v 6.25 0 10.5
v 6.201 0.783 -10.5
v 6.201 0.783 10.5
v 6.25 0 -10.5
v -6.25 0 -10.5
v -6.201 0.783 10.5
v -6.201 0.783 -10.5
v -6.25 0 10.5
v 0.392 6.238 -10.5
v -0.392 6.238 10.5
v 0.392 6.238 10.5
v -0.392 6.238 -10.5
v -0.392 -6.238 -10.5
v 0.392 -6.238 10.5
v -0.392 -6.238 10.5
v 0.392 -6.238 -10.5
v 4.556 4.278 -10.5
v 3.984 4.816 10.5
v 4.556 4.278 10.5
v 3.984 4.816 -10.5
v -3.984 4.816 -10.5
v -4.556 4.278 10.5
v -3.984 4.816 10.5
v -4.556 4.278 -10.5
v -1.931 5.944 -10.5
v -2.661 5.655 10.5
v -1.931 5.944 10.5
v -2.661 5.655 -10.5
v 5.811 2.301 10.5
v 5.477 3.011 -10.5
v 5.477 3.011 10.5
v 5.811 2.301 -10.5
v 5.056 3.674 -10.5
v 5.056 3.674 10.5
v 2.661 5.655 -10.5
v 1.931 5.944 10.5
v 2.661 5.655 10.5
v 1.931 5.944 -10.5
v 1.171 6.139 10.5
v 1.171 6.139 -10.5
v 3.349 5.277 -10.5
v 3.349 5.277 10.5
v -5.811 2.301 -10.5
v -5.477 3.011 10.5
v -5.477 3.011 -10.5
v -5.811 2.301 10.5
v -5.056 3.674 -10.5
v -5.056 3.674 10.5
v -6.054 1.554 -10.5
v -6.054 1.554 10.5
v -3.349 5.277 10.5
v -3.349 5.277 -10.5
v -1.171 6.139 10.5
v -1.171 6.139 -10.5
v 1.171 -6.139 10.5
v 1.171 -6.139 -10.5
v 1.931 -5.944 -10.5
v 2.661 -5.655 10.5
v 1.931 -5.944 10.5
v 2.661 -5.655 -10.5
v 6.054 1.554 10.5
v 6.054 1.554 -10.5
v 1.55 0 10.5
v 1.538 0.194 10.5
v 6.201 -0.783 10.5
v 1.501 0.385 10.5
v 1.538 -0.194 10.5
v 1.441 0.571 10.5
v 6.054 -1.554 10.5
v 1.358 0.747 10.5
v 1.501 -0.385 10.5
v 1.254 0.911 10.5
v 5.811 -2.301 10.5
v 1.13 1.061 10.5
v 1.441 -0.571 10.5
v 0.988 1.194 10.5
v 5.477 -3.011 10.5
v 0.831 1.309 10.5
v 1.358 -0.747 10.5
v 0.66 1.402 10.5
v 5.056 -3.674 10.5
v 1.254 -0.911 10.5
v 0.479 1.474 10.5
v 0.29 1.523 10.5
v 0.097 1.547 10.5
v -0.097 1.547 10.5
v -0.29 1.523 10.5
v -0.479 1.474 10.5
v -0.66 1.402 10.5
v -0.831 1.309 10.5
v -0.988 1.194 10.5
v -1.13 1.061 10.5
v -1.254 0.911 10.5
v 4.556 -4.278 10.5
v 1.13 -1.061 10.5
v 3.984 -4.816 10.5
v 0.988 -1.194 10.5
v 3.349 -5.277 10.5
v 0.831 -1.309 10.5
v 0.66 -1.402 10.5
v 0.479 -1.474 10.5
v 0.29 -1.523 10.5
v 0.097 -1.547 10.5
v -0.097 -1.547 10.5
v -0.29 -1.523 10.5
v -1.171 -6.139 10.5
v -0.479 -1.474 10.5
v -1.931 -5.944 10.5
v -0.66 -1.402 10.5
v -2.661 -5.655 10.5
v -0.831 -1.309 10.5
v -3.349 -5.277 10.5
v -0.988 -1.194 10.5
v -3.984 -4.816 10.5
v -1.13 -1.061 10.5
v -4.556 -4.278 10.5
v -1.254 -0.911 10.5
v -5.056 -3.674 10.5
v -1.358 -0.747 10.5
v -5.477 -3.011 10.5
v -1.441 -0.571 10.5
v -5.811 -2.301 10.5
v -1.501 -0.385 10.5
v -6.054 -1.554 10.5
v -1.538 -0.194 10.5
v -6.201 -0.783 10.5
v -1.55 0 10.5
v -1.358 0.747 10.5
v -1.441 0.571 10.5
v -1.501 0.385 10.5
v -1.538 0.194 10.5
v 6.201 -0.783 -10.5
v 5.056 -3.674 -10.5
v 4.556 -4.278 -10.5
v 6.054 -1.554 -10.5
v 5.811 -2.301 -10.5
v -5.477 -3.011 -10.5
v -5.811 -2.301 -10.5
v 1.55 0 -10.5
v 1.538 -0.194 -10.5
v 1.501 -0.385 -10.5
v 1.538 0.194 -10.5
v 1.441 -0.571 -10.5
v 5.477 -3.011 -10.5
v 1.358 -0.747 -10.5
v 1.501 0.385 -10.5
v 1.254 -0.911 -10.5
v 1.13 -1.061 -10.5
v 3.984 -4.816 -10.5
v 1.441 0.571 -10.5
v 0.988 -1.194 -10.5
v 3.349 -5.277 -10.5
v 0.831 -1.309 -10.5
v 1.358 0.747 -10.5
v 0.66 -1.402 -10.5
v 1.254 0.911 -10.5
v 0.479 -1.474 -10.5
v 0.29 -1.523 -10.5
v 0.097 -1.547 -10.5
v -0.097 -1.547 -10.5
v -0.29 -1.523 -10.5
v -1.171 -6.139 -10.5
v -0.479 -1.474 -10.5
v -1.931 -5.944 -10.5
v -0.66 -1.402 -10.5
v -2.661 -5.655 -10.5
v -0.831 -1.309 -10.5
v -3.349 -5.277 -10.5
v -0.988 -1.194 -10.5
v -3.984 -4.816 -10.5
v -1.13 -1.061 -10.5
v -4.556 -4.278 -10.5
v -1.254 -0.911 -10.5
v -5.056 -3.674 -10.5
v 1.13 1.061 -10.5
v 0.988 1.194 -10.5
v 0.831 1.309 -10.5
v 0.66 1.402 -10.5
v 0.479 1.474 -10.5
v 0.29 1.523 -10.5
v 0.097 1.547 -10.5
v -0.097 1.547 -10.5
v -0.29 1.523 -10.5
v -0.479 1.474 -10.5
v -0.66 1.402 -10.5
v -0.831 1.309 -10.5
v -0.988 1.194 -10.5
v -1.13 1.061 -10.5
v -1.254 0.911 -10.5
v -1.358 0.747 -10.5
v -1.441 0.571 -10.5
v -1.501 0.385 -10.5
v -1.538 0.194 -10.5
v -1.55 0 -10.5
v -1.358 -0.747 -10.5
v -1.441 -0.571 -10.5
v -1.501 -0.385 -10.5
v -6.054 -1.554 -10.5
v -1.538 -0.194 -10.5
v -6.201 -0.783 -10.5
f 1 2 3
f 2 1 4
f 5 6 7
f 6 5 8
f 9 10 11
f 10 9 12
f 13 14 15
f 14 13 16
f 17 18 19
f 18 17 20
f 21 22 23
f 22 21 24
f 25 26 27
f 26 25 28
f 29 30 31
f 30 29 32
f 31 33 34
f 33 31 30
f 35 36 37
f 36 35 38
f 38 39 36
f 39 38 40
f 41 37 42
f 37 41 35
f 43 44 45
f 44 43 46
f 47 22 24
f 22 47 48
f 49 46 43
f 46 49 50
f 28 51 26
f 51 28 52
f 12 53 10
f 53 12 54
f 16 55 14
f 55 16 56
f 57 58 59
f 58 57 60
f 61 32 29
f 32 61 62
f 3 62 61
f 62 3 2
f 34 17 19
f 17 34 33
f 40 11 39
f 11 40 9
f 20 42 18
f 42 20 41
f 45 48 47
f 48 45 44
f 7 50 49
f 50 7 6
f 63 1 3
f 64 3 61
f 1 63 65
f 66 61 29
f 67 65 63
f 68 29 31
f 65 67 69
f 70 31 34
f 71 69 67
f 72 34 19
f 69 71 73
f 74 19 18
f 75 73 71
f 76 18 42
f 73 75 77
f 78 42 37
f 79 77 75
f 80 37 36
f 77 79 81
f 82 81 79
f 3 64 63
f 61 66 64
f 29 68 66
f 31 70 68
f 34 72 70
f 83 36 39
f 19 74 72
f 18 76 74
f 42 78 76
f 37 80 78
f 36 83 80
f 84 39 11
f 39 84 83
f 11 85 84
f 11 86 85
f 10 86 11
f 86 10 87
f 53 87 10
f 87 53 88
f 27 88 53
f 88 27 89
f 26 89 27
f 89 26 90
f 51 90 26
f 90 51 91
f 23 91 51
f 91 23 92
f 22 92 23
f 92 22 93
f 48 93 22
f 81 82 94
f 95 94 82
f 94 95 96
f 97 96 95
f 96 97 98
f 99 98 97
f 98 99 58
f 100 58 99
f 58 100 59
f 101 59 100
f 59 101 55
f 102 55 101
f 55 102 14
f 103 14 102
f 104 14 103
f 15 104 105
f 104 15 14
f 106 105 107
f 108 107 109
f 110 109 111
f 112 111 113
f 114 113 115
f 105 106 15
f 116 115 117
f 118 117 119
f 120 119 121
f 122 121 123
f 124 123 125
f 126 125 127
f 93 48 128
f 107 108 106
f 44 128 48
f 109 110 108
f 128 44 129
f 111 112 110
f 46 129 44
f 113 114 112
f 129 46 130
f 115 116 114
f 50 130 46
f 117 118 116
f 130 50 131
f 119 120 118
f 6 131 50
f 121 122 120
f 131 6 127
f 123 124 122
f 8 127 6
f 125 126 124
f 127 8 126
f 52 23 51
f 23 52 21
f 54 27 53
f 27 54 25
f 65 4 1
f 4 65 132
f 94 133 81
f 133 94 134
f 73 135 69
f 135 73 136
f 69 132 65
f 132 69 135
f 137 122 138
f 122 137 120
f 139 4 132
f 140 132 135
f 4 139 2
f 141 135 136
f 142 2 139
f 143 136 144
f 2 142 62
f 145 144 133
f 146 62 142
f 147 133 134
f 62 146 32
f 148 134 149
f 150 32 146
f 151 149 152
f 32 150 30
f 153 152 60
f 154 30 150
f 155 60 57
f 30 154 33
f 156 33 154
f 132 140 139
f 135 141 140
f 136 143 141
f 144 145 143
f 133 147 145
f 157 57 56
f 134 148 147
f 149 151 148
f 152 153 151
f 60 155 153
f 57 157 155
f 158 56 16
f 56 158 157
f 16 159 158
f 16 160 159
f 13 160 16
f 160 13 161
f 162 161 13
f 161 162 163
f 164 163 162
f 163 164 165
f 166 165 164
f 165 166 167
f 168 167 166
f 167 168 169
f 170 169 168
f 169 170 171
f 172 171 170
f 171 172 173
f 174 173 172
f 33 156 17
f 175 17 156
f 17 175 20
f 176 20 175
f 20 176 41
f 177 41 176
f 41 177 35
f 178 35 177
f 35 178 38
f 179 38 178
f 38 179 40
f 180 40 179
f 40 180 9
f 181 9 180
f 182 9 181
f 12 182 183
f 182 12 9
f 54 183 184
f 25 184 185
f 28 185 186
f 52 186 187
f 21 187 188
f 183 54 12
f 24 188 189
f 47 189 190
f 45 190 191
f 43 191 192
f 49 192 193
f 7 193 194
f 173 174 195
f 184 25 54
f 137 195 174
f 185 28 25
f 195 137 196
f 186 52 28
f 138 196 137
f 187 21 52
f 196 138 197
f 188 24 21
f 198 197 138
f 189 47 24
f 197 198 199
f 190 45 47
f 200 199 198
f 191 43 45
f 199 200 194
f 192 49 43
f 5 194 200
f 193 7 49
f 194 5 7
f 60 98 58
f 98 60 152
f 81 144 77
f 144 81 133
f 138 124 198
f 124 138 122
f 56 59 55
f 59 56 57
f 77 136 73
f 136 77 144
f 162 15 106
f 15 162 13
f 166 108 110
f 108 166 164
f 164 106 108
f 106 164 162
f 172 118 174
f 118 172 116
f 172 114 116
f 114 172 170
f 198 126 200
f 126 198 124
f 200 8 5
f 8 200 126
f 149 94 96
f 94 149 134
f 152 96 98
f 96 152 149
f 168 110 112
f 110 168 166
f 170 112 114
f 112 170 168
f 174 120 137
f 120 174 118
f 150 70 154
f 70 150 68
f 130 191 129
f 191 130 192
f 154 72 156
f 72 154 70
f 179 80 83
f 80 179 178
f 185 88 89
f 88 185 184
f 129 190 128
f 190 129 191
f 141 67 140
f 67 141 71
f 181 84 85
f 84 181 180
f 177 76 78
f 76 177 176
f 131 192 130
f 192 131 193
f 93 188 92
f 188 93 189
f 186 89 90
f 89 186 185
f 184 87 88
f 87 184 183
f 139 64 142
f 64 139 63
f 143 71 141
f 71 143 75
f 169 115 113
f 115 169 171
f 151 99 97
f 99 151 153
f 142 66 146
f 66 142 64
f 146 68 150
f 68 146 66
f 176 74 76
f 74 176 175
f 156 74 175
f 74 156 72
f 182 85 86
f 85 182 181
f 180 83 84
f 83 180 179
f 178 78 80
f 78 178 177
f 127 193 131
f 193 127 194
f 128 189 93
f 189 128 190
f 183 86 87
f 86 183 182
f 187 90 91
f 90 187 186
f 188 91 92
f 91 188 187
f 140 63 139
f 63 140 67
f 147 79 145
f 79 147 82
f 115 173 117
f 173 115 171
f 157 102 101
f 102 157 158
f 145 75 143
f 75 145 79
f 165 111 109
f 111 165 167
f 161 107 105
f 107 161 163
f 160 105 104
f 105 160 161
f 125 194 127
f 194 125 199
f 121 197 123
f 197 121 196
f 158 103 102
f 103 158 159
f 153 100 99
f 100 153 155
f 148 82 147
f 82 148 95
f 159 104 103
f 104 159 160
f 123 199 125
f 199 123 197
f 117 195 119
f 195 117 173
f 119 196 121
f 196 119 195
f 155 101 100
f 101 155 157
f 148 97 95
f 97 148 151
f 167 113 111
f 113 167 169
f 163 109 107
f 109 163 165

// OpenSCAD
$fn = 50;


difference() {
	union() {
		translate(v = [0, 0, -10.5000000000]) {
			cylinder(h = 21, r = 6.2500000000);
		}
	}
	union() {
		translate(v = [0, 0, -100.0000000000]) {
			cylinder(h = 200, r = 1.5500000000);
		}
	}
}
